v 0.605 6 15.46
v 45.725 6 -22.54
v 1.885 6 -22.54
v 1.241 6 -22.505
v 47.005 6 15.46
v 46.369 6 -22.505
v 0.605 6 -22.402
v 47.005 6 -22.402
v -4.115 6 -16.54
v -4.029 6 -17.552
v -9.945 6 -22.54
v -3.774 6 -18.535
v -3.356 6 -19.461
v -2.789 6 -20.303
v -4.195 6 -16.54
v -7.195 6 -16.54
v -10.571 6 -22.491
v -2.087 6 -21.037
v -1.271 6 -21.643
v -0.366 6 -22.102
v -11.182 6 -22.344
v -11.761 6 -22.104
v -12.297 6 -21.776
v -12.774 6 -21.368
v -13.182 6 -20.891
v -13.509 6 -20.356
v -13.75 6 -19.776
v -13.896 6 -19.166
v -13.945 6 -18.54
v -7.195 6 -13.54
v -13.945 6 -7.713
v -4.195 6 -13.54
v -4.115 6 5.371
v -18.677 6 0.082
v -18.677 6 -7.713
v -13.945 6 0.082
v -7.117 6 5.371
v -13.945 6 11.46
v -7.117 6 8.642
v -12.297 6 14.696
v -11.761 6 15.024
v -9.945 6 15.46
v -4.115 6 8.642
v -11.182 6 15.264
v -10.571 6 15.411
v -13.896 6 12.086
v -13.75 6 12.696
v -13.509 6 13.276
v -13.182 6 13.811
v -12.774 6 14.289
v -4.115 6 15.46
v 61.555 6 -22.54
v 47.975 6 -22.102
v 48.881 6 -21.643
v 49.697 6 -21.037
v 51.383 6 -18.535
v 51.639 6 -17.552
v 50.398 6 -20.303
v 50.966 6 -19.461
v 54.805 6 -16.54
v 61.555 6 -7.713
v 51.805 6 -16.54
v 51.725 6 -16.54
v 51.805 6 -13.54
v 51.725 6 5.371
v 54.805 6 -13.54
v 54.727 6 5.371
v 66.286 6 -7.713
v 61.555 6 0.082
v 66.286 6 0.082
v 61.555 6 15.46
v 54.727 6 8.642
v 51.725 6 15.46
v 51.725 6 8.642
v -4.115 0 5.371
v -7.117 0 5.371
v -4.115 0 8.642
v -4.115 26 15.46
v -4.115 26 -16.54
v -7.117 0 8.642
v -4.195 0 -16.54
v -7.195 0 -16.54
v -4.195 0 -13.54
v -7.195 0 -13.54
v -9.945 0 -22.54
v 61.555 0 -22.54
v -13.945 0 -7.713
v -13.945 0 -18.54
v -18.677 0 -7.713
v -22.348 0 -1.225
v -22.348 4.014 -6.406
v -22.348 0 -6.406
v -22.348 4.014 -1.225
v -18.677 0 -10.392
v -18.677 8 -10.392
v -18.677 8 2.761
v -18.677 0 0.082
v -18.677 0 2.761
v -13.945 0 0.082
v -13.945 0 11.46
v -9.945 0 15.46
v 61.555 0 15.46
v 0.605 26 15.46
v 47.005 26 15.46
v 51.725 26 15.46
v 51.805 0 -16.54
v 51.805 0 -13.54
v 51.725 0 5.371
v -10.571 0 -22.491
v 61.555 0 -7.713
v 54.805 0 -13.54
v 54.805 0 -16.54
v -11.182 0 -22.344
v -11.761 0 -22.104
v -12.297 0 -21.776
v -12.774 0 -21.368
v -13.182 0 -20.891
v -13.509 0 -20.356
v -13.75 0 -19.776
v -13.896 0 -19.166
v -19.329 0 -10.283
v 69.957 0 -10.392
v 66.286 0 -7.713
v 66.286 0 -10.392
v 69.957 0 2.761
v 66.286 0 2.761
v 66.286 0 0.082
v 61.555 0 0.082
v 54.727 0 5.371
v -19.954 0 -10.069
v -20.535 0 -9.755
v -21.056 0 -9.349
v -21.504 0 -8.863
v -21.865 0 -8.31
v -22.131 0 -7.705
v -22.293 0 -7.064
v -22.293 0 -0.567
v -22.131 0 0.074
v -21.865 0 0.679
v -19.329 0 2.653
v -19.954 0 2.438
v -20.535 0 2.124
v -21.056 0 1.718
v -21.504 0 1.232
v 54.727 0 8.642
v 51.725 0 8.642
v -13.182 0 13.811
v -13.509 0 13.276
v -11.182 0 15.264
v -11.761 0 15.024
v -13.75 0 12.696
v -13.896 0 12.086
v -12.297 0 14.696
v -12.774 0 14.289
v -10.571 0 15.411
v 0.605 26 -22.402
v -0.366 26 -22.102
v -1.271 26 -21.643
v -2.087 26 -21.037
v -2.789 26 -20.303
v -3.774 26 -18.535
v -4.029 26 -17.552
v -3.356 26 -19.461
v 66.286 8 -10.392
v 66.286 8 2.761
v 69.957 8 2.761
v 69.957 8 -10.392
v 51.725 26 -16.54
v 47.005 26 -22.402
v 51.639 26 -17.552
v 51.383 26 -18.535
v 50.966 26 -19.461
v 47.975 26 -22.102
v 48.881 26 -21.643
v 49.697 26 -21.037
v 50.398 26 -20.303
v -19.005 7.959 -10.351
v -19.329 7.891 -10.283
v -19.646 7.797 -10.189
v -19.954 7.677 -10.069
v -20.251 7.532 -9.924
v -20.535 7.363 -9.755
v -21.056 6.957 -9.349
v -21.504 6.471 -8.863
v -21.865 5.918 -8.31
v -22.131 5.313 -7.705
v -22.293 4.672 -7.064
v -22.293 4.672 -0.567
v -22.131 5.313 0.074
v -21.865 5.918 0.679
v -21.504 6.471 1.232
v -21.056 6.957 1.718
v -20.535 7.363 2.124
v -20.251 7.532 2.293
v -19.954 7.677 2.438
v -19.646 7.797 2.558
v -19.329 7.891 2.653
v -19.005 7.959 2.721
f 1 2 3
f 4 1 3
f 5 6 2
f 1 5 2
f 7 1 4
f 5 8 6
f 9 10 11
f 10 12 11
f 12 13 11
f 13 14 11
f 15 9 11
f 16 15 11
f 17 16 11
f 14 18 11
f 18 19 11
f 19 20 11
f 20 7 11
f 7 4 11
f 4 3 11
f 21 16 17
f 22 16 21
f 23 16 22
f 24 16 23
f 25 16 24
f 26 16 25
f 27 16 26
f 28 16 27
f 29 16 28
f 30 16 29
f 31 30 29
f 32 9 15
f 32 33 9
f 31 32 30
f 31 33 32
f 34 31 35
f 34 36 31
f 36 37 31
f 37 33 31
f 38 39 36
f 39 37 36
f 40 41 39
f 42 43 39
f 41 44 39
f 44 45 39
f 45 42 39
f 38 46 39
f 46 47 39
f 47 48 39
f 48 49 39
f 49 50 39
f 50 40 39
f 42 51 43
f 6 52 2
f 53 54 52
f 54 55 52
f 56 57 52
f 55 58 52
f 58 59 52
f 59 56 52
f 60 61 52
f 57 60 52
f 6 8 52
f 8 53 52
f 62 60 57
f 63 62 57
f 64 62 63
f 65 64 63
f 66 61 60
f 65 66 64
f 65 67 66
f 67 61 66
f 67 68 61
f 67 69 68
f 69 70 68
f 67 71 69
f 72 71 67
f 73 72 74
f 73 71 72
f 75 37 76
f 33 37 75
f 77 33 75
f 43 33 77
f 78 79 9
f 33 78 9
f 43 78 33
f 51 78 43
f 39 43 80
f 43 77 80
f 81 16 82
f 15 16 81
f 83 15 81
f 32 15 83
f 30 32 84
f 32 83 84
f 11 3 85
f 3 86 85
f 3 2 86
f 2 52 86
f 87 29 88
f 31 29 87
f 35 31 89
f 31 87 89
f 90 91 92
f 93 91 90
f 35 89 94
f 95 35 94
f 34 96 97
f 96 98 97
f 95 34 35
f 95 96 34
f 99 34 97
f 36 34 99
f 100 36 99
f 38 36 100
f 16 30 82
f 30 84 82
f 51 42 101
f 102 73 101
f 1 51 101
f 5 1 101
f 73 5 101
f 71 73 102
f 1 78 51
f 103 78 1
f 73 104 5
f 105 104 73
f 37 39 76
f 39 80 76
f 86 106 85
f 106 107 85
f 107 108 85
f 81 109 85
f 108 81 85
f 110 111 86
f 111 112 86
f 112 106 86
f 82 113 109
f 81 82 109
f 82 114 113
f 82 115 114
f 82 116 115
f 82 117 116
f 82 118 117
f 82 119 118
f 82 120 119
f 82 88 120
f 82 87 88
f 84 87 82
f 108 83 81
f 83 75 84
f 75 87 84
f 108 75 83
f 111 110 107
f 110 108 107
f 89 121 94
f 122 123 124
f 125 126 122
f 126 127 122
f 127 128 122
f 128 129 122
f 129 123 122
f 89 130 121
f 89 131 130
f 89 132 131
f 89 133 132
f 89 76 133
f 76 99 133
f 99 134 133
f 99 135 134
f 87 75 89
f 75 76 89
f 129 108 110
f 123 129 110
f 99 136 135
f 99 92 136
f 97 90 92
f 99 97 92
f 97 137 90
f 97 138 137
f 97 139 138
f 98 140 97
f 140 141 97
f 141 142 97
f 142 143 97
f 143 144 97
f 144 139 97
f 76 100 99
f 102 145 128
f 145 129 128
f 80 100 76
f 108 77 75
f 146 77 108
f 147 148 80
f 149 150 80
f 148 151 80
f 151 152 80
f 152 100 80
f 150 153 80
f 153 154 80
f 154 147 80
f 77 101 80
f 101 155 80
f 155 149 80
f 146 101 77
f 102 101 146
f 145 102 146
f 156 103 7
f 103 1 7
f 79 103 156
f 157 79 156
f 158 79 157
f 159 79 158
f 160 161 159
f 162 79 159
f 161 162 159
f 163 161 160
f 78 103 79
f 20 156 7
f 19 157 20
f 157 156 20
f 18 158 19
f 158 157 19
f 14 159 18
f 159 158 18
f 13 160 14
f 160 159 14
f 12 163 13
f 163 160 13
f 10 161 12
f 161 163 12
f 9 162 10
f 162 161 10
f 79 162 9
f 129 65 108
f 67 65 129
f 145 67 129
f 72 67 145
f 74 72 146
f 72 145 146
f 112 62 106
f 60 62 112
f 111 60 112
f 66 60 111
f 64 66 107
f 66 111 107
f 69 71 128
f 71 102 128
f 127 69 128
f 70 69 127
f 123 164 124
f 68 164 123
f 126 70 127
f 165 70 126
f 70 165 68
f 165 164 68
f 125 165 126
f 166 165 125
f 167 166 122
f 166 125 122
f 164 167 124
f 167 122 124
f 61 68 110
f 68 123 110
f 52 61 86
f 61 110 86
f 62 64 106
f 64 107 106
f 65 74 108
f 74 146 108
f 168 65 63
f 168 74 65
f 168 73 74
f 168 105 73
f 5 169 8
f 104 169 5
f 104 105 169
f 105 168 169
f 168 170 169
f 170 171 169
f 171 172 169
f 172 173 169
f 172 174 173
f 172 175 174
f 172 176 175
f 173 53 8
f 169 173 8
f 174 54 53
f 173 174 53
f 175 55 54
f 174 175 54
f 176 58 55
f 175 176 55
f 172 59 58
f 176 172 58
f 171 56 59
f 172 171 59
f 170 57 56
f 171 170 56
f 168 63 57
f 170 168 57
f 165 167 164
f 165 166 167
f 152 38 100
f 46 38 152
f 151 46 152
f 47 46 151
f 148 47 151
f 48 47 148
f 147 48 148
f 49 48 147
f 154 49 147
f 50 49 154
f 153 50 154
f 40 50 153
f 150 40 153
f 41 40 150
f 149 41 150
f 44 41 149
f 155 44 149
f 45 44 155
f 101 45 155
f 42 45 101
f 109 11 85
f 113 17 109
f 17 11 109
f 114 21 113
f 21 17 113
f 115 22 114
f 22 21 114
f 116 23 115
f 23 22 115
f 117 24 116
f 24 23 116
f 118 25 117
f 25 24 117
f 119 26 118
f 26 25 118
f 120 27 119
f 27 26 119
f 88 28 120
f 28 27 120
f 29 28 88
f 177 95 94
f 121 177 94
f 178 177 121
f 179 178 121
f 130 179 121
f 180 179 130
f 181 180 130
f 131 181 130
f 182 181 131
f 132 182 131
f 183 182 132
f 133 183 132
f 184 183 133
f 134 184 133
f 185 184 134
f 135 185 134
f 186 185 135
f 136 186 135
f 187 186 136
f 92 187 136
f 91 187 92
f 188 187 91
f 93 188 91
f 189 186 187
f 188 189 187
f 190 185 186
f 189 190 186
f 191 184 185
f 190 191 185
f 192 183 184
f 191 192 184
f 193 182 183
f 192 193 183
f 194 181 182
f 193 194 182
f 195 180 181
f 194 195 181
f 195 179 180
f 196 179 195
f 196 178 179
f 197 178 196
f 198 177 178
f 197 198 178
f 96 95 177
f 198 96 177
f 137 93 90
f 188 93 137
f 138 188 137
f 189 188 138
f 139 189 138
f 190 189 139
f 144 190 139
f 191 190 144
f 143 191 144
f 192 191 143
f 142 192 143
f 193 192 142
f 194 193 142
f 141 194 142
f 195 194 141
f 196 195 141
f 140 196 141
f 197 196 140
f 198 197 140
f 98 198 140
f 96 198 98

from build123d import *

# Parameters (mm, degrees)
SKETCH1_W           = 37.75025884
SKETCH1_H           = 38
SKETCH1_W_2         = 3
SKETCH1_H_2         = 3
SKETCH1_W_3         = 3.002099817
SKETCH1_H_3         = 3.270956242
SKETCH1_W_4         = 4.73135243
SKETCH1_H_4         = 7.795369176
BOSS_EXTRUDE1_DEPTH = 6
SKETCH2_W           = 4.72004293
SKETCH2_H           = 38
BOSS_EXTRUDE2_DEPTH = 20
FILLET1_R           = 6
SKETCH3_W           = 3.670795438
SKETCH3_H           = 13.153400434
BOSS_EXTRUDE3_DEPTH = 2
MIRROR1_OUTLINE_W   = 3.002099816
MIRROR1_OUTLINE_H   = 3.270956242
MIRROR1_OUTLINE_W_2 = 3
MIRROR1_OUTLINE_H_2 = 3
MIRROR1_DEPTH       = 6
MIRROR1_START       = 6
MIRROR1_2_DEPTH     = 20
MIRROR1_3_OUTLINE_W = 3.670795437
MIRROR1_3_OUTLINE_H = 13.153400434
MIRROR1_3_DEPTH     = 2
FILLET2_R           = 4


# Read off the part's stored shape, not the designer's step: Mirror1
with BuildPart() as part:
    # Sketch1 → Boss-Extrude1 (new body)
    # profile 1 of 3: a face of its own
    with BuildSketch(Plane(origin=(0, 0, 0), x_dir=(1, 0, 0), z_dir=(0, 1, 0))):
        with Locations((4.929687173, 3.539918032)):
            Rectangle(SKETCH1_W, SKETCH1_H)
        with Locations((-5.695183407, 15.039918032)):
            Rectangle(SKETCH1_W_2, SKETCH1_H_2, mode=Mode.SUBTRACT)
        with Locations((-5.616276245, -7.006497188)):
            Rectangle(SKETCH1_W_3, SKETCH1_H_3, mode=Mode.SUBTRACT)
    # profile 2 of 3: a face of its own
    with BuildSketch(Plane(origin=(0, 0, 0), x_dir=(1, 0, 0), z_dir=(0, 1, 0))):
        with Locations((-16.311118462, 3.815370554)):
            Rectangle(SKETCH1_W_4, SKETCH1_H_4)
    # profile 3 of 3: a face of its own
    with BuildSketch(Plane(origin=(0, 0, 0), x_dir=(1, 0, 0), z_dir=(0, 1, 0))):
        Polygon((-18.676794677, -0.082314034), (-18.676794677, 7.713055142), (-18.676794677, 10.392070771), (-22.347590115, 10.392070771), (-22.347590115, -2.761329663), (-18.676794677, -2.761329663), align=None)
    extrude(amount=BOSS_EXTRUDE1_DEPTH)

    # Sketch2 → Boss-Extrude2 (add)
    with BuildSketch(Plane(origin=(0, 6, 0), x_dir=(1, 0, 0), z_dir=(0, 1, 0))):
        with Locations((-1.755204872, 3.539918032)):
            Rectangle(SKETCH2_W, SKETCH2_H)
    extrude(amount=BOSS_EXTRUDE2_DEPTH)

    # Fillet1
    # the kernel refuses this fillet: 6 mm, written as the material it takes off along each edge
    with BuildSketch(Plane(origin=(-4.115226337, 6, -22.539918032), x_dir=(1, 0, 0), z_dir=(0, 1, 0))) as fillet1_piece_1:
        with BuildLine():
            CenterArc((FILLET1_R, -FILLET1_R), FILLET1_R, 90, 90)
            Line((0, -FILLET1_R), (0, 0))
            Line((0, 0), (FILLET1_R, 0))
        make_face()
    extrude(amount=35, mode=Mode.SUBTRACT)

    # Sketch3 → Boss-Extrude3 (add)
    with BuildSketch(Plane(origin=(0, 6, 0), x_dir=(1, 0, 0), z_dir=(0, 1, 0))):
        with Locations((-20.512192396, 3.815370554)):
            Rectangle(SKETCH3_W, SKETCH3_H)
    extrude(amount=BOSS_EXTRUDE3_DEPTH)

    # Mirror1 outline → Mirror1 (add)
    with BuildSketch(Plane(origin=(0, 0, 0), x_dir=(1, 0, 0), z_dir=(0, 1, 0))):
        Polygon((23.804816593, -15.460081968), (61.555075434, -15.460081968), (61.555075434, -0.082314034), (66.286427864, -0.082314034), (66.286427864, -2.761329663), (69.957223301, -2.761329663), (69.957223301, 10.392070771), (66.286427864, 10.392070771), (66.286427864, 7.713055142), (61.555075434, 7.713055142), (61.555075434, 22.539918032), (23.804816593, 22.539918032), align=None)
        with Locations((53.225909432, -7.006497188)):
            Rectangle(MIRROR1_OUTLINE_W, MIRROR1_OUTLINE_H, mode=Mode.SUBTRACT)
        with Locations((53.304816593, 15.039918032)):
            Rectangle(MIRROR1_OUTLINE_W_2, MIRROR1_OUTLINE_H_2, mode=Mode.SUBTRACT)
    extrude(amount=MIRROR1_DEPTH)

    # Mirror1 2 outline → Mirror1 2 (add)
    with BuildSketch(Plane(origin=(0, 0, 0), x_dir=(1, 0, 0), z_dir=(0, 1, 0)).offset(MIRROR1_START)):
        with BuildLine():
            Line((51.724859524, -15.460081968), (51.724859524, 16.539918032))
            ThreePointArc((51.724859524, 16.539918032), (50.398174323, 20.302912689), (47.004816593, 22.401804238))
            Line((47.004816593, 22.401804238), (47.004816593, -15.460081968))
            Line((47.004816593, -15.460081968), (51.724859524, -15.460081968))
        make_face()
    extrude(amount=MIRROR1_2_DEPTH)

    # Mirror1 3 outline → Mirror1 3 (add)
    with BuildSketch(Plane(origin=(0, 0, 0), x_dir=(1, 0, 0), z_dir=(0, 1, 0)).offset(MIRROR1_START)):
        with Locations((68.121825583, 3.815370554)):
            Rectangle(MIRROR1_3_OUTLINE_W, MIRROR1_3_OUTLINE_H)
    extrude(amount=MIRROR1_3_DEPTH)

    # Fillet2
    # the kernel refuses this fillet: 4 mm, written as the material it takes off along each edge
    with BuildSketch(Plane(origin=(-13.945442247, -10, 15.460081968), x_dir=(0, 0, -1), z_dir=(0, 1, 0)), Plane(origin=(-13.945442247, -10, -22.539918032), x_dir=(1, 0, 0), z_dir=(0, 1, 0))) as fillet2_piece_1:
        with BuildLine():
            CenterArc((FILLET2_R, -FILLET2_R), FILLET2_R, 90, 90)
            Line((0, -FILLET2_R), (-FILLET2_R * 0.02, -FILLET2_R))
            Line((-FILLET2_R * 0.02, -FILLET2_R), (-FILLET2_R * 0.02, FILLET2_R * 0.02))
            Line((-FILLET2_R * 0.02, FILLET2_R * 0.02), (FILLET2_R, FILLET2_R * 0.02))
            Line((FILLET2_R, FILLET2_R * 0.02), (FILLET2_R, 0))
        make_face()
    extrude(amount=26, mode=Mode.SUBTRACT)
    with BuildSketch(Plane(origin=(-22.347590115, 17.966075066, 2.761329663), x_dir=(0, 0, -1), z_dir=(0, -1, 0))) as fillet2_piece_2:
        with BuildLine():
            CenterArc((3.986430026, 4), FILLET2_R, 184.720847703, 85.279152297)
            Line((0, 3.670795437), (-0.079728601, 3.664211346))
            ThreePointArc((-0.079728601, 3.664211346), (-0.08, 1.835397719), (-0.08, 0))
            Line((-0.08, 0), (0, -0.08))
            Line((0, -0.08), (3.986430026, -0.08))
            Line((3.986430026, -0.08), (3.986430026, 0))
        make_face()
    extrude(amount=27.932150132, mode=Mode.SUBTRACT)
    with BuildSketch(Plane(origin=(-22.347590115, 8, -20.358145837), x_dir=(0, -1, 0), z_dir=(0, 0, 1))) as fillet2_piece_3:
        with BuildLine():
            CenterArc((3.986430026, 4), FILLET2_R, 184.720847703, 85.279152297)
            Line((0, 3.670795437), (-0.079728601, 3.664211346))
            ThreePointArc((-0.079728601, 3.664211346), (-0.08, 1.835397719), (-0.08, 0))
            Line((-0.08, 0), (0, -0.08))
            Line((0, -0.08), (3.986430026, -0.08))
            Line((3.986430026, -0.08), (3.986430026, 0))
        make_face()
    extrude(amount=33.085550566, mode=Mode.SUBTRACT)
    with BuildSketch(Plane(origin=(-22.347590115, -9.966075066, -10.392070771), x_dir=(1, 0, 0), z_dir=(0, 1, 0))) as fillet2_piece_4:
        with BuildLine():
            CenterArc((4, -3.986430026), FILLET2_R, 94.720847703, 85.279152297)
            Line((0, -3.986430026), (-0.08, -3.986430026))
            Line((-0.08, -3.986430026), (-0.08, 0))
            Line((-0.08, 0), (0, 0.08))
            ThreePointArc((0, 0.08), (1.835397719, 0.08), (3.664211346, 0.079728601))
            Line((3.664211346, 0.079728601), (3.670795437, 0))
        make_face()
    extrude(amount=27.932150132, mode=Mode.SUBTRACT)


solid = part.part
